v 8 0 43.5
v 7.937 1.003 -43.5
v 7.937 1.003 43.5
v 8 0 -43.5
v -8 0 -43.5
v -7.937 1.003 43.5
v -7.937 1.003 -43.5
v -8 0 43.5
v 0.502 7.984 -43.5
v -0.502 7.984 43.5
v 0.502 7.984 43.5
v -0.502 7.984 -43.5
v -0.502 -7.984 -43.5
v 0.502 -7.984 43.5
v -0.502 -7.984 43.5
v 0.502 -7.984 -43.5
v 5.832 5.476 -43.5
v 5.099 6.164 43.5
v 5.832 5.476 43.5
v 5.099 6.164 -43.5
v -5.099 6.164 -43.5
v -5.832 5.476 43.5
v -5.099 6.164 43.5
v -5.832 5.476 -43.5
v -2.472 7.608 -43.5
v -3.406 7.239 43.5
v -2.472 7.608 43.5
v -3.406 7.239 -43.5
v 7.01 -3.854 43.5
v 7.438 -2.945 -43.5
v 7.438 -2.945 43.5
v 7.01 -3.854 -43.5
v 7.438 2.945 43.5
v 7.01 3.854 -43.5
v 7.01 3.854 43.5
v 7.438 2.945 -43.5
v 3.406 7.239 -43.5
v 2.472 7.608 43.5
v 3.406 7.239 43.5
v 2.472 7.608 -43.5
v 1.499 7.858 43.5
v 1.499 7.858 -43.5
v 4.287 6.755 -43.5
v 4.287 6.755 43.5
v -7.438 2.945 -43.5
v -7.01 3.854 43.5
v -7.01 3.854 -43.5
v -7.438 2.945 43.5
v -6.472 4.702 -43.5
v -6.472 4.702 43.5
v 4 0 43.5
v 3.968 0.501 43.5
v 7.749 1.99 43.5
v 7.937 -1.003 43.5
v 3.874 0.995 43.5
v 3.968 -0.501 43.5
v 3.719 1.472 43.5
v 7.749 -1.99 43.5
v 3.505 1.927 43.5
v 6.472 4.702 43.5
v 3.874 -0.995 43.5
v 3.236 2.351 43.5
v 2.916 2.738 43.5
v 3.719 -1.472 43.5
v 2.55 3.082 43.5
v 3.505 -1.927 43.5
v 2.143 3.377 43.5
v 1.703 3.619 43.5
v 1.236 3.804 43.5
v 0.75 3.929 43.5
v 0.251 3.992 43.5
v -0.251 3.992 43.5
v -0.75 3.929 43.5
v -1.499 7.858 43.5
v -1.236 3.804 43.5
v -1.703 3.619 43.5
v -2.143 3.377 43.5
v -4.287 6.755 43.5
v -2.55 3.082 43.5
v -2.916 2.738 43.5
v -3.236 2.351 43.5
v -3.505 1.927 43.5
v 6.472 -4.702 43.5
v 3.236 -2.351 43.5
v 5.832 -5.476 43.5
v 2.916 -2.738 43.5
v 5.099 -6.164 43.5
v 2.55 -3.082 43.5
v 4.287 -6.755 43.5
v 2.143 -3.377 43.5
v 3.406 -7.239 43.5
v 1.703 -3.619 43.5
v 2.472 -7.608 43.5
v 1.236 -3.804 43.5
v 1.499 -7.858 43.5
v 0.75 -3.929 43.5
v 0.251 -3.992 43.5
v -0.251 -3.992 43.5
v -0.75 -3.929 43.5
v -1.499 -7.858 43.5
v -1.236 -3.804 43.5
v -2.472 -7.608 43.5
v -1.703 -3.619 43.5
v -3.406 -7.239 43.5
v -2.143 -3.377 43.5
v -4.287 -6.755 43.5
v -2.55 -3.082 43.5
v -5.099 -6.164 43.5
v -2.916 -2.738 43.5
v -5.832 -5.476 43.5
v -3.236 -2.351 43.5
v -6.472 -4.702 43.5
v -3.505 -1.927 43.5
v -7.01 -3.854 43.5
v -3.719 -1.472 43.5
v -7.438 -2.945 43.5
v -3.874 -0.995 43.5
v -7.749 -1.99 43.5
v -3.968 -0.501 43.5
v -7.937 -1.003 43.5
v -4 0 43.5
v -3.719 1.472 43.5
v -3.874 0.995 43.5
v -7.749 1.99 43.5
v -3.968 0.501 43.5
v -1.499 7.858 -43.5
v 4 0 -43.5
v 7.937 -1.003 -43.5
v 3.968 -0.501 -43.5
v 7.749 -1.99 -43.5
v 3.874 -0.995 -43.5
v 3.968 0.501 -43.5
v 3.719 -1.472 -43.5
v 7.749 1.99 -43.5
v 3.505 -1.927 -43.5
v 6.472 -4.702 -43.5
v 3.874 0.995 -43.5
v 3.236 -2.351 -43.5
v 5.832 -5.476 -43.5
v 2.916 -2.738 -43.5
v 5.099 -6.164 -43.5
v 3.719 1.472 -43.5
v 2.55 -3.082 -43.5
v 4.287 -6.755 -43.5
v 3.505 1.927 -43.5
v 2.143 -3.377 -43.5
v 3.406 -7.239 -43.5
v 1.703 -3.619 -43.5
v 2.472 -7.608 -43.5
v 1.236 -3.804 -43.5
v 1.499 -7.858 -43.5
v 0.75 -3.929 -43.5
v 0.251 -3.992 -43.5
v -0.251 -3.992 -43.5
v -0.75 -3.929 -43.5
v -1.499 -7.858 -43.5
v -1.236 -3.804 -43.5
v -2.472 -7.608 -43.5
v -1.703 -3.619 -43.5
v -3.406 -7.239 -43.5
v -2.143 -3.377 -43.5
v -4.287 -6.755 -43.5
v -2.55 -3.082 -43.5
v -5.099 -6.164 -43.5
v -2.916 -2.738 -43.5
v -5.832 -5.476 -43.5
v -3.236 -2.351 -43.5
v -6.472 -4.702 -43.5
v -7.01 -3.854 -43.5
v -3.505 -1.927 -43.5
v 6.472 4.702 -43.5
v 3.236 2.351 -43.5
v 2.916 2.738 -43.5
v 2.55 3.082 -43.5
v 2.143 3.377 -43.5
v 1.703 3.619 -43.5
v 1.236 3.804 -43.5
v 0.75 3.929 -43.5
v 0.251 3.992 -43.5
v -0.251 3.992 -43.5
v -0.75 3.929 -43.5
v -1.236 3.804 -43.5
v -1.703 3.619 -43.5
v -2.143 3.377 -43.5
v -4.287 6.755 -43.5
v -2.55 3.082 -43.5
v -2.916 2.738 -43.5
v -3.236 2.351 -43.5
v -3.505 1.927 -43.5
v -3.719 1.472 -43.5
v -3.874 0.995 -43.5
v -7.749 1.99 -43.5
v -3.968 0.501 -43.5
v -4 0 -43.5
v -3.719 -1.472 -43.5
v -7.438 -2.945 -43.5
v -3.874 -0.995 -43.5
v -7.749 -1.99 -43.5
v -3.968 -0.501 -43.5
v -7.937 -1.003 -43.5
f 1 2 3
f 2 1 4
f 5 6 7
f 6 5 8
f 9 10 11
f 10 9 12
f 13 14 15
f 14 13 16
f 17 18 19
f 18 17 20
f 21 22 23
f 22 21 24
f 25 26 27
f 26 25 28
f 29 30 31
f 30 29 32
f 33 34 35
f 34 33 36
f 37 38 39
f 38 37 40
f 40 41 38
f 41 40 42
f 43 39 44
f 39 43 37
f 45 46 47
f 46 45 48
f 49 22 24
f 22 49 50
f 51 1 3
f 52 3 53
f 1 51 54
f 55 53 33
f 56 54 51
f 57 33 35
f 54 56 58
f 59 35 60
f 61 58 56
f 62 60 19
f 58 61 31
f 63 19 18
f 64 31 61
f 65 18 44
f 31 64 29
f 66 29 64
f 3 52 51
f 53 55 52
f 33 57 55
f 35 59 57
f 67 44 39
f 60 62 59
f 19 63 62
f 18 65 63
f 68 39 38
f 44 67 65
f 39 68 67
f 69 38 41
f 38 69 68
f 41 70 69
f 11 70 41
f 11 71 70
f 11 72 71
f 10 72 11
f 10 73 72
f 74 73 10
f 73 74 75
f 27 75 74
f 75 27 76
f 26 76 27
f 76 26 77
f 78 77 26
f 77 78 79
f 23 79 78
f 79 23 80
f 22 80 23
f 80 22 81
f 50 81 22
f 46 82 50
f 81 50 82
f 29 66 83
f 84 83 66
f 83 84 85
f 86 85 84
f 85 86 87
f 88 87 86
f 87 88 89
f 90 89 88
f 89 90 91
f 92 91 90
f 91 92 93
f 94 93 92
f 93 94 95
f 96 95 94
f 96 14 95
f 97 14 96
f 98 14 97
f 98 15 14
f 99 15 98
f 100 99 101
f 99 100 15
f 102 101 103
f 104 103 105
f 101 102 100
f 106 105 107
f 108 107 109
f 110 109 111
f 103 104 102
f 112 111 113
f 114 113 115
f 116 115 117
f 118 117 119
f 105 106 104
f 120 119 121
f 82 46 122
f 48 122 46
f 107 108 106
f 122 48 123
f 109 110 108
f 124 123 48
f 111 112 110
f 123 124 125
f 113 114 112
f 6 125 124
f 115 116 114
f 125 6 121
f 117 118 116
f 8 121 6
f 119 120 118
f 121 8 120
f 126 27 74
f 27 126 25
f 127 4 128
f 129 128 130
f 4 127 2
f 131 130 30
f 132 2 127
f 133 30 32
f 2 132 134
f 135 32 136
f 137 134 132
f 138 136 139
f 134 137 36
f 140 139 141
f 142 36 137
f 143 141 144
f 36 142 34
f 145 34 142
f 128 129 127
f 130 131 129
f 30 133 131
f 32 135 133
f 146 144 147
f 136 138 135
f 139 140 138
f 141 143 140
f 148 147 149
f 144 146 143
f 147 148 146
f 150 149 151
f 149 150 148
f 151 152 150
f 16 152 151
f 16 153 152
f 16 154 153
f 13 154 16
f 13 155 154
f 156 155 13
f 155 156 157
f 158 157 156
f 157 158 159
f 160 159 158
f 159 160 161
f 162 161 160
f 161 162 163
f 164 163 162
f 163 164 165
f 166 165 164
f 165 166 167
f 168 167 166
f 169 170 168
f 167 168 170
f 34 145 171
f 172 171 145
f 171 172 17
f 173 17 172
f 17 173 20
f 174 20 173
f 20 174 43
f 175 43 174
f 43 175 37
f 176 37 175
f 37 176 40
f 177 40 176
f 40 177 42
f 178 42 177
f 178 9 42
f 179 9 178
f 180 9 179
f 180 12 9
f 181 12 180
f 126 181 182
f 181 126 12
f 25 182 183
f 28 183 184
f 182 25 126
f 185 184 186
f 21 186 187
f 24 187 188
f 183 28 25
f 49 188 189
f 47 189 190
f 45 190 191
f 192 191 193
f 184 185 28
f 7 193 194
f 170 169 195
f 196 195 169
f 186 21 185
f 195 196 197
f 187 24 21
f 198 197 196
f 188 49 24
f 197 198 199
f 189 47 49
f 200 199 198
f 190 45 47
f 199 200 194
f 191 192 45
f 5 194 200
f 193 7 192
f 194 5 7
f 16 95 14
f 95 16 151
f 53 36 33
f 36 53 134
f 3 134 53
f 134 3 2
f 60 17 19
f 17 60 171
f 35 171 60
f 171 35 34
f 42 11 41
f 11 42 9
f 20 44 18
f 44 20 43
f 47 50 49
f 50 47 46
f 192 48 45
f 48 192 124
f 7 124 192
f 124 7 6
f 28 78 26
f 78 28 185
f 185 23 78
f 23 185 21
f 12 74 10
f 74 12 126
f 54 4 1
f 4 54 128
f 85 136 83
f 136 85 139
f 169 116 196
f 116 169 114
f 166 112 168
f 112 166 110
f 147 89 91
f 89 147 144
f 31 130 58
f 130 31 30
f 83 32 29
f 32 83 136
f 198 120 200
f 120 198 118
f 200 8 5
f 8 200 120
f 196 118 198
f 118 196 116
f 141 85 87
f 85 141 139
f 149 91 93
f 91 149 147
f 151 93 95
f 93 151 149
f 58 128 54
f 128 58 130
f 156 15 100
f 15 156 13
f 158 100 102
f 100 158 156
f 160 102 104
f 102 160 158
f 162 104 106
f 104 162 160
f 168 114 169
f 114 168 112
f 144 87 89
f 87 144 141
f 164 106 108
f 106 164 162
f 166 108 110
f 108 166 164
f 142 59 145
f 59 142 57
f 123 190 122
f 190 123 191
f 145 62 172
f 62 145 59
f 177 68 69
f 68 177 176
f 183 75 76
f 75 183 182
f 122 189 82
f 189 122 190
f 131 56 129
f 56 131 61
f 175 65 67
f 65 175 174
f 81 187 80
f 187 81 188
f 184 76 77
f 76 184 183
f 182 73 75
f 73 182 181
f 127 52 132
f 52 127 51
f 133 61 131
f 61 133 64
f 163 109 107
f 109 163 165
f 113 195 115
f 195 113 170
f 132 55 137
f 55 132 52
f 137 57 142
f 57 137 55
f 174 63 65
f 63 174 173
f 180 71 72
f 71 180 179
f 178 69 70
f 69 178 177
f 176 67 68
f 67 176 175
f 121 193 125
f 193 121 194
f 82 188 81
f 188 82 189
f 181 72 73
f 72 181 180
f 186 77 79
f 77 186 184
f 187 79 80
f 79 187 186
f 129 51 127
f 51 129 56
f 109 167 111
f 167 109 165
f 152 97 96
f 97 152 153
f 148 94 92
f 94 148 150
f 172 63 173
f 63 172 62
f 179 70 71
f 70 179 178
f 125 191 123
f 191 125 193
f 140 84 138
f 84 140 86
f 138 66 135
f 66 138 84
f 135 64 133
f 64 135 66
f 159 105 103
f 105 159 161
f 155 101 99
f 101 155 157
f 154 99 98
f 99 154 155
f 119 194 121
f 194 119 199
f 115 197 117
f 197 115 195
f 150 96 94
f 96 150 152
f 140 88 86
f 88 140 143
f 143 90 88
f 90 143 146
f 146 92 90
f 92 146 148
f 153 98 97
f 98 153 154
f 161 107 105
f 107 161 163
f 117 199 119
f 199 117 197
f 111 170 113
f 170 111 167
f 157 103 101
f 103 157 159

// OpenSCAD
$fn = 50;


difference() {
	union() {
		translate(v = [0, 0, -43.5000000000]) {
			cylinder(h = 87, r = 8.0000000000);
		}
	}
	union() {
		translate(v = [0, 0, -100.0000000000]) {
			cylinder(h = 200, r = 4.0000000000);
		}
	}
}
